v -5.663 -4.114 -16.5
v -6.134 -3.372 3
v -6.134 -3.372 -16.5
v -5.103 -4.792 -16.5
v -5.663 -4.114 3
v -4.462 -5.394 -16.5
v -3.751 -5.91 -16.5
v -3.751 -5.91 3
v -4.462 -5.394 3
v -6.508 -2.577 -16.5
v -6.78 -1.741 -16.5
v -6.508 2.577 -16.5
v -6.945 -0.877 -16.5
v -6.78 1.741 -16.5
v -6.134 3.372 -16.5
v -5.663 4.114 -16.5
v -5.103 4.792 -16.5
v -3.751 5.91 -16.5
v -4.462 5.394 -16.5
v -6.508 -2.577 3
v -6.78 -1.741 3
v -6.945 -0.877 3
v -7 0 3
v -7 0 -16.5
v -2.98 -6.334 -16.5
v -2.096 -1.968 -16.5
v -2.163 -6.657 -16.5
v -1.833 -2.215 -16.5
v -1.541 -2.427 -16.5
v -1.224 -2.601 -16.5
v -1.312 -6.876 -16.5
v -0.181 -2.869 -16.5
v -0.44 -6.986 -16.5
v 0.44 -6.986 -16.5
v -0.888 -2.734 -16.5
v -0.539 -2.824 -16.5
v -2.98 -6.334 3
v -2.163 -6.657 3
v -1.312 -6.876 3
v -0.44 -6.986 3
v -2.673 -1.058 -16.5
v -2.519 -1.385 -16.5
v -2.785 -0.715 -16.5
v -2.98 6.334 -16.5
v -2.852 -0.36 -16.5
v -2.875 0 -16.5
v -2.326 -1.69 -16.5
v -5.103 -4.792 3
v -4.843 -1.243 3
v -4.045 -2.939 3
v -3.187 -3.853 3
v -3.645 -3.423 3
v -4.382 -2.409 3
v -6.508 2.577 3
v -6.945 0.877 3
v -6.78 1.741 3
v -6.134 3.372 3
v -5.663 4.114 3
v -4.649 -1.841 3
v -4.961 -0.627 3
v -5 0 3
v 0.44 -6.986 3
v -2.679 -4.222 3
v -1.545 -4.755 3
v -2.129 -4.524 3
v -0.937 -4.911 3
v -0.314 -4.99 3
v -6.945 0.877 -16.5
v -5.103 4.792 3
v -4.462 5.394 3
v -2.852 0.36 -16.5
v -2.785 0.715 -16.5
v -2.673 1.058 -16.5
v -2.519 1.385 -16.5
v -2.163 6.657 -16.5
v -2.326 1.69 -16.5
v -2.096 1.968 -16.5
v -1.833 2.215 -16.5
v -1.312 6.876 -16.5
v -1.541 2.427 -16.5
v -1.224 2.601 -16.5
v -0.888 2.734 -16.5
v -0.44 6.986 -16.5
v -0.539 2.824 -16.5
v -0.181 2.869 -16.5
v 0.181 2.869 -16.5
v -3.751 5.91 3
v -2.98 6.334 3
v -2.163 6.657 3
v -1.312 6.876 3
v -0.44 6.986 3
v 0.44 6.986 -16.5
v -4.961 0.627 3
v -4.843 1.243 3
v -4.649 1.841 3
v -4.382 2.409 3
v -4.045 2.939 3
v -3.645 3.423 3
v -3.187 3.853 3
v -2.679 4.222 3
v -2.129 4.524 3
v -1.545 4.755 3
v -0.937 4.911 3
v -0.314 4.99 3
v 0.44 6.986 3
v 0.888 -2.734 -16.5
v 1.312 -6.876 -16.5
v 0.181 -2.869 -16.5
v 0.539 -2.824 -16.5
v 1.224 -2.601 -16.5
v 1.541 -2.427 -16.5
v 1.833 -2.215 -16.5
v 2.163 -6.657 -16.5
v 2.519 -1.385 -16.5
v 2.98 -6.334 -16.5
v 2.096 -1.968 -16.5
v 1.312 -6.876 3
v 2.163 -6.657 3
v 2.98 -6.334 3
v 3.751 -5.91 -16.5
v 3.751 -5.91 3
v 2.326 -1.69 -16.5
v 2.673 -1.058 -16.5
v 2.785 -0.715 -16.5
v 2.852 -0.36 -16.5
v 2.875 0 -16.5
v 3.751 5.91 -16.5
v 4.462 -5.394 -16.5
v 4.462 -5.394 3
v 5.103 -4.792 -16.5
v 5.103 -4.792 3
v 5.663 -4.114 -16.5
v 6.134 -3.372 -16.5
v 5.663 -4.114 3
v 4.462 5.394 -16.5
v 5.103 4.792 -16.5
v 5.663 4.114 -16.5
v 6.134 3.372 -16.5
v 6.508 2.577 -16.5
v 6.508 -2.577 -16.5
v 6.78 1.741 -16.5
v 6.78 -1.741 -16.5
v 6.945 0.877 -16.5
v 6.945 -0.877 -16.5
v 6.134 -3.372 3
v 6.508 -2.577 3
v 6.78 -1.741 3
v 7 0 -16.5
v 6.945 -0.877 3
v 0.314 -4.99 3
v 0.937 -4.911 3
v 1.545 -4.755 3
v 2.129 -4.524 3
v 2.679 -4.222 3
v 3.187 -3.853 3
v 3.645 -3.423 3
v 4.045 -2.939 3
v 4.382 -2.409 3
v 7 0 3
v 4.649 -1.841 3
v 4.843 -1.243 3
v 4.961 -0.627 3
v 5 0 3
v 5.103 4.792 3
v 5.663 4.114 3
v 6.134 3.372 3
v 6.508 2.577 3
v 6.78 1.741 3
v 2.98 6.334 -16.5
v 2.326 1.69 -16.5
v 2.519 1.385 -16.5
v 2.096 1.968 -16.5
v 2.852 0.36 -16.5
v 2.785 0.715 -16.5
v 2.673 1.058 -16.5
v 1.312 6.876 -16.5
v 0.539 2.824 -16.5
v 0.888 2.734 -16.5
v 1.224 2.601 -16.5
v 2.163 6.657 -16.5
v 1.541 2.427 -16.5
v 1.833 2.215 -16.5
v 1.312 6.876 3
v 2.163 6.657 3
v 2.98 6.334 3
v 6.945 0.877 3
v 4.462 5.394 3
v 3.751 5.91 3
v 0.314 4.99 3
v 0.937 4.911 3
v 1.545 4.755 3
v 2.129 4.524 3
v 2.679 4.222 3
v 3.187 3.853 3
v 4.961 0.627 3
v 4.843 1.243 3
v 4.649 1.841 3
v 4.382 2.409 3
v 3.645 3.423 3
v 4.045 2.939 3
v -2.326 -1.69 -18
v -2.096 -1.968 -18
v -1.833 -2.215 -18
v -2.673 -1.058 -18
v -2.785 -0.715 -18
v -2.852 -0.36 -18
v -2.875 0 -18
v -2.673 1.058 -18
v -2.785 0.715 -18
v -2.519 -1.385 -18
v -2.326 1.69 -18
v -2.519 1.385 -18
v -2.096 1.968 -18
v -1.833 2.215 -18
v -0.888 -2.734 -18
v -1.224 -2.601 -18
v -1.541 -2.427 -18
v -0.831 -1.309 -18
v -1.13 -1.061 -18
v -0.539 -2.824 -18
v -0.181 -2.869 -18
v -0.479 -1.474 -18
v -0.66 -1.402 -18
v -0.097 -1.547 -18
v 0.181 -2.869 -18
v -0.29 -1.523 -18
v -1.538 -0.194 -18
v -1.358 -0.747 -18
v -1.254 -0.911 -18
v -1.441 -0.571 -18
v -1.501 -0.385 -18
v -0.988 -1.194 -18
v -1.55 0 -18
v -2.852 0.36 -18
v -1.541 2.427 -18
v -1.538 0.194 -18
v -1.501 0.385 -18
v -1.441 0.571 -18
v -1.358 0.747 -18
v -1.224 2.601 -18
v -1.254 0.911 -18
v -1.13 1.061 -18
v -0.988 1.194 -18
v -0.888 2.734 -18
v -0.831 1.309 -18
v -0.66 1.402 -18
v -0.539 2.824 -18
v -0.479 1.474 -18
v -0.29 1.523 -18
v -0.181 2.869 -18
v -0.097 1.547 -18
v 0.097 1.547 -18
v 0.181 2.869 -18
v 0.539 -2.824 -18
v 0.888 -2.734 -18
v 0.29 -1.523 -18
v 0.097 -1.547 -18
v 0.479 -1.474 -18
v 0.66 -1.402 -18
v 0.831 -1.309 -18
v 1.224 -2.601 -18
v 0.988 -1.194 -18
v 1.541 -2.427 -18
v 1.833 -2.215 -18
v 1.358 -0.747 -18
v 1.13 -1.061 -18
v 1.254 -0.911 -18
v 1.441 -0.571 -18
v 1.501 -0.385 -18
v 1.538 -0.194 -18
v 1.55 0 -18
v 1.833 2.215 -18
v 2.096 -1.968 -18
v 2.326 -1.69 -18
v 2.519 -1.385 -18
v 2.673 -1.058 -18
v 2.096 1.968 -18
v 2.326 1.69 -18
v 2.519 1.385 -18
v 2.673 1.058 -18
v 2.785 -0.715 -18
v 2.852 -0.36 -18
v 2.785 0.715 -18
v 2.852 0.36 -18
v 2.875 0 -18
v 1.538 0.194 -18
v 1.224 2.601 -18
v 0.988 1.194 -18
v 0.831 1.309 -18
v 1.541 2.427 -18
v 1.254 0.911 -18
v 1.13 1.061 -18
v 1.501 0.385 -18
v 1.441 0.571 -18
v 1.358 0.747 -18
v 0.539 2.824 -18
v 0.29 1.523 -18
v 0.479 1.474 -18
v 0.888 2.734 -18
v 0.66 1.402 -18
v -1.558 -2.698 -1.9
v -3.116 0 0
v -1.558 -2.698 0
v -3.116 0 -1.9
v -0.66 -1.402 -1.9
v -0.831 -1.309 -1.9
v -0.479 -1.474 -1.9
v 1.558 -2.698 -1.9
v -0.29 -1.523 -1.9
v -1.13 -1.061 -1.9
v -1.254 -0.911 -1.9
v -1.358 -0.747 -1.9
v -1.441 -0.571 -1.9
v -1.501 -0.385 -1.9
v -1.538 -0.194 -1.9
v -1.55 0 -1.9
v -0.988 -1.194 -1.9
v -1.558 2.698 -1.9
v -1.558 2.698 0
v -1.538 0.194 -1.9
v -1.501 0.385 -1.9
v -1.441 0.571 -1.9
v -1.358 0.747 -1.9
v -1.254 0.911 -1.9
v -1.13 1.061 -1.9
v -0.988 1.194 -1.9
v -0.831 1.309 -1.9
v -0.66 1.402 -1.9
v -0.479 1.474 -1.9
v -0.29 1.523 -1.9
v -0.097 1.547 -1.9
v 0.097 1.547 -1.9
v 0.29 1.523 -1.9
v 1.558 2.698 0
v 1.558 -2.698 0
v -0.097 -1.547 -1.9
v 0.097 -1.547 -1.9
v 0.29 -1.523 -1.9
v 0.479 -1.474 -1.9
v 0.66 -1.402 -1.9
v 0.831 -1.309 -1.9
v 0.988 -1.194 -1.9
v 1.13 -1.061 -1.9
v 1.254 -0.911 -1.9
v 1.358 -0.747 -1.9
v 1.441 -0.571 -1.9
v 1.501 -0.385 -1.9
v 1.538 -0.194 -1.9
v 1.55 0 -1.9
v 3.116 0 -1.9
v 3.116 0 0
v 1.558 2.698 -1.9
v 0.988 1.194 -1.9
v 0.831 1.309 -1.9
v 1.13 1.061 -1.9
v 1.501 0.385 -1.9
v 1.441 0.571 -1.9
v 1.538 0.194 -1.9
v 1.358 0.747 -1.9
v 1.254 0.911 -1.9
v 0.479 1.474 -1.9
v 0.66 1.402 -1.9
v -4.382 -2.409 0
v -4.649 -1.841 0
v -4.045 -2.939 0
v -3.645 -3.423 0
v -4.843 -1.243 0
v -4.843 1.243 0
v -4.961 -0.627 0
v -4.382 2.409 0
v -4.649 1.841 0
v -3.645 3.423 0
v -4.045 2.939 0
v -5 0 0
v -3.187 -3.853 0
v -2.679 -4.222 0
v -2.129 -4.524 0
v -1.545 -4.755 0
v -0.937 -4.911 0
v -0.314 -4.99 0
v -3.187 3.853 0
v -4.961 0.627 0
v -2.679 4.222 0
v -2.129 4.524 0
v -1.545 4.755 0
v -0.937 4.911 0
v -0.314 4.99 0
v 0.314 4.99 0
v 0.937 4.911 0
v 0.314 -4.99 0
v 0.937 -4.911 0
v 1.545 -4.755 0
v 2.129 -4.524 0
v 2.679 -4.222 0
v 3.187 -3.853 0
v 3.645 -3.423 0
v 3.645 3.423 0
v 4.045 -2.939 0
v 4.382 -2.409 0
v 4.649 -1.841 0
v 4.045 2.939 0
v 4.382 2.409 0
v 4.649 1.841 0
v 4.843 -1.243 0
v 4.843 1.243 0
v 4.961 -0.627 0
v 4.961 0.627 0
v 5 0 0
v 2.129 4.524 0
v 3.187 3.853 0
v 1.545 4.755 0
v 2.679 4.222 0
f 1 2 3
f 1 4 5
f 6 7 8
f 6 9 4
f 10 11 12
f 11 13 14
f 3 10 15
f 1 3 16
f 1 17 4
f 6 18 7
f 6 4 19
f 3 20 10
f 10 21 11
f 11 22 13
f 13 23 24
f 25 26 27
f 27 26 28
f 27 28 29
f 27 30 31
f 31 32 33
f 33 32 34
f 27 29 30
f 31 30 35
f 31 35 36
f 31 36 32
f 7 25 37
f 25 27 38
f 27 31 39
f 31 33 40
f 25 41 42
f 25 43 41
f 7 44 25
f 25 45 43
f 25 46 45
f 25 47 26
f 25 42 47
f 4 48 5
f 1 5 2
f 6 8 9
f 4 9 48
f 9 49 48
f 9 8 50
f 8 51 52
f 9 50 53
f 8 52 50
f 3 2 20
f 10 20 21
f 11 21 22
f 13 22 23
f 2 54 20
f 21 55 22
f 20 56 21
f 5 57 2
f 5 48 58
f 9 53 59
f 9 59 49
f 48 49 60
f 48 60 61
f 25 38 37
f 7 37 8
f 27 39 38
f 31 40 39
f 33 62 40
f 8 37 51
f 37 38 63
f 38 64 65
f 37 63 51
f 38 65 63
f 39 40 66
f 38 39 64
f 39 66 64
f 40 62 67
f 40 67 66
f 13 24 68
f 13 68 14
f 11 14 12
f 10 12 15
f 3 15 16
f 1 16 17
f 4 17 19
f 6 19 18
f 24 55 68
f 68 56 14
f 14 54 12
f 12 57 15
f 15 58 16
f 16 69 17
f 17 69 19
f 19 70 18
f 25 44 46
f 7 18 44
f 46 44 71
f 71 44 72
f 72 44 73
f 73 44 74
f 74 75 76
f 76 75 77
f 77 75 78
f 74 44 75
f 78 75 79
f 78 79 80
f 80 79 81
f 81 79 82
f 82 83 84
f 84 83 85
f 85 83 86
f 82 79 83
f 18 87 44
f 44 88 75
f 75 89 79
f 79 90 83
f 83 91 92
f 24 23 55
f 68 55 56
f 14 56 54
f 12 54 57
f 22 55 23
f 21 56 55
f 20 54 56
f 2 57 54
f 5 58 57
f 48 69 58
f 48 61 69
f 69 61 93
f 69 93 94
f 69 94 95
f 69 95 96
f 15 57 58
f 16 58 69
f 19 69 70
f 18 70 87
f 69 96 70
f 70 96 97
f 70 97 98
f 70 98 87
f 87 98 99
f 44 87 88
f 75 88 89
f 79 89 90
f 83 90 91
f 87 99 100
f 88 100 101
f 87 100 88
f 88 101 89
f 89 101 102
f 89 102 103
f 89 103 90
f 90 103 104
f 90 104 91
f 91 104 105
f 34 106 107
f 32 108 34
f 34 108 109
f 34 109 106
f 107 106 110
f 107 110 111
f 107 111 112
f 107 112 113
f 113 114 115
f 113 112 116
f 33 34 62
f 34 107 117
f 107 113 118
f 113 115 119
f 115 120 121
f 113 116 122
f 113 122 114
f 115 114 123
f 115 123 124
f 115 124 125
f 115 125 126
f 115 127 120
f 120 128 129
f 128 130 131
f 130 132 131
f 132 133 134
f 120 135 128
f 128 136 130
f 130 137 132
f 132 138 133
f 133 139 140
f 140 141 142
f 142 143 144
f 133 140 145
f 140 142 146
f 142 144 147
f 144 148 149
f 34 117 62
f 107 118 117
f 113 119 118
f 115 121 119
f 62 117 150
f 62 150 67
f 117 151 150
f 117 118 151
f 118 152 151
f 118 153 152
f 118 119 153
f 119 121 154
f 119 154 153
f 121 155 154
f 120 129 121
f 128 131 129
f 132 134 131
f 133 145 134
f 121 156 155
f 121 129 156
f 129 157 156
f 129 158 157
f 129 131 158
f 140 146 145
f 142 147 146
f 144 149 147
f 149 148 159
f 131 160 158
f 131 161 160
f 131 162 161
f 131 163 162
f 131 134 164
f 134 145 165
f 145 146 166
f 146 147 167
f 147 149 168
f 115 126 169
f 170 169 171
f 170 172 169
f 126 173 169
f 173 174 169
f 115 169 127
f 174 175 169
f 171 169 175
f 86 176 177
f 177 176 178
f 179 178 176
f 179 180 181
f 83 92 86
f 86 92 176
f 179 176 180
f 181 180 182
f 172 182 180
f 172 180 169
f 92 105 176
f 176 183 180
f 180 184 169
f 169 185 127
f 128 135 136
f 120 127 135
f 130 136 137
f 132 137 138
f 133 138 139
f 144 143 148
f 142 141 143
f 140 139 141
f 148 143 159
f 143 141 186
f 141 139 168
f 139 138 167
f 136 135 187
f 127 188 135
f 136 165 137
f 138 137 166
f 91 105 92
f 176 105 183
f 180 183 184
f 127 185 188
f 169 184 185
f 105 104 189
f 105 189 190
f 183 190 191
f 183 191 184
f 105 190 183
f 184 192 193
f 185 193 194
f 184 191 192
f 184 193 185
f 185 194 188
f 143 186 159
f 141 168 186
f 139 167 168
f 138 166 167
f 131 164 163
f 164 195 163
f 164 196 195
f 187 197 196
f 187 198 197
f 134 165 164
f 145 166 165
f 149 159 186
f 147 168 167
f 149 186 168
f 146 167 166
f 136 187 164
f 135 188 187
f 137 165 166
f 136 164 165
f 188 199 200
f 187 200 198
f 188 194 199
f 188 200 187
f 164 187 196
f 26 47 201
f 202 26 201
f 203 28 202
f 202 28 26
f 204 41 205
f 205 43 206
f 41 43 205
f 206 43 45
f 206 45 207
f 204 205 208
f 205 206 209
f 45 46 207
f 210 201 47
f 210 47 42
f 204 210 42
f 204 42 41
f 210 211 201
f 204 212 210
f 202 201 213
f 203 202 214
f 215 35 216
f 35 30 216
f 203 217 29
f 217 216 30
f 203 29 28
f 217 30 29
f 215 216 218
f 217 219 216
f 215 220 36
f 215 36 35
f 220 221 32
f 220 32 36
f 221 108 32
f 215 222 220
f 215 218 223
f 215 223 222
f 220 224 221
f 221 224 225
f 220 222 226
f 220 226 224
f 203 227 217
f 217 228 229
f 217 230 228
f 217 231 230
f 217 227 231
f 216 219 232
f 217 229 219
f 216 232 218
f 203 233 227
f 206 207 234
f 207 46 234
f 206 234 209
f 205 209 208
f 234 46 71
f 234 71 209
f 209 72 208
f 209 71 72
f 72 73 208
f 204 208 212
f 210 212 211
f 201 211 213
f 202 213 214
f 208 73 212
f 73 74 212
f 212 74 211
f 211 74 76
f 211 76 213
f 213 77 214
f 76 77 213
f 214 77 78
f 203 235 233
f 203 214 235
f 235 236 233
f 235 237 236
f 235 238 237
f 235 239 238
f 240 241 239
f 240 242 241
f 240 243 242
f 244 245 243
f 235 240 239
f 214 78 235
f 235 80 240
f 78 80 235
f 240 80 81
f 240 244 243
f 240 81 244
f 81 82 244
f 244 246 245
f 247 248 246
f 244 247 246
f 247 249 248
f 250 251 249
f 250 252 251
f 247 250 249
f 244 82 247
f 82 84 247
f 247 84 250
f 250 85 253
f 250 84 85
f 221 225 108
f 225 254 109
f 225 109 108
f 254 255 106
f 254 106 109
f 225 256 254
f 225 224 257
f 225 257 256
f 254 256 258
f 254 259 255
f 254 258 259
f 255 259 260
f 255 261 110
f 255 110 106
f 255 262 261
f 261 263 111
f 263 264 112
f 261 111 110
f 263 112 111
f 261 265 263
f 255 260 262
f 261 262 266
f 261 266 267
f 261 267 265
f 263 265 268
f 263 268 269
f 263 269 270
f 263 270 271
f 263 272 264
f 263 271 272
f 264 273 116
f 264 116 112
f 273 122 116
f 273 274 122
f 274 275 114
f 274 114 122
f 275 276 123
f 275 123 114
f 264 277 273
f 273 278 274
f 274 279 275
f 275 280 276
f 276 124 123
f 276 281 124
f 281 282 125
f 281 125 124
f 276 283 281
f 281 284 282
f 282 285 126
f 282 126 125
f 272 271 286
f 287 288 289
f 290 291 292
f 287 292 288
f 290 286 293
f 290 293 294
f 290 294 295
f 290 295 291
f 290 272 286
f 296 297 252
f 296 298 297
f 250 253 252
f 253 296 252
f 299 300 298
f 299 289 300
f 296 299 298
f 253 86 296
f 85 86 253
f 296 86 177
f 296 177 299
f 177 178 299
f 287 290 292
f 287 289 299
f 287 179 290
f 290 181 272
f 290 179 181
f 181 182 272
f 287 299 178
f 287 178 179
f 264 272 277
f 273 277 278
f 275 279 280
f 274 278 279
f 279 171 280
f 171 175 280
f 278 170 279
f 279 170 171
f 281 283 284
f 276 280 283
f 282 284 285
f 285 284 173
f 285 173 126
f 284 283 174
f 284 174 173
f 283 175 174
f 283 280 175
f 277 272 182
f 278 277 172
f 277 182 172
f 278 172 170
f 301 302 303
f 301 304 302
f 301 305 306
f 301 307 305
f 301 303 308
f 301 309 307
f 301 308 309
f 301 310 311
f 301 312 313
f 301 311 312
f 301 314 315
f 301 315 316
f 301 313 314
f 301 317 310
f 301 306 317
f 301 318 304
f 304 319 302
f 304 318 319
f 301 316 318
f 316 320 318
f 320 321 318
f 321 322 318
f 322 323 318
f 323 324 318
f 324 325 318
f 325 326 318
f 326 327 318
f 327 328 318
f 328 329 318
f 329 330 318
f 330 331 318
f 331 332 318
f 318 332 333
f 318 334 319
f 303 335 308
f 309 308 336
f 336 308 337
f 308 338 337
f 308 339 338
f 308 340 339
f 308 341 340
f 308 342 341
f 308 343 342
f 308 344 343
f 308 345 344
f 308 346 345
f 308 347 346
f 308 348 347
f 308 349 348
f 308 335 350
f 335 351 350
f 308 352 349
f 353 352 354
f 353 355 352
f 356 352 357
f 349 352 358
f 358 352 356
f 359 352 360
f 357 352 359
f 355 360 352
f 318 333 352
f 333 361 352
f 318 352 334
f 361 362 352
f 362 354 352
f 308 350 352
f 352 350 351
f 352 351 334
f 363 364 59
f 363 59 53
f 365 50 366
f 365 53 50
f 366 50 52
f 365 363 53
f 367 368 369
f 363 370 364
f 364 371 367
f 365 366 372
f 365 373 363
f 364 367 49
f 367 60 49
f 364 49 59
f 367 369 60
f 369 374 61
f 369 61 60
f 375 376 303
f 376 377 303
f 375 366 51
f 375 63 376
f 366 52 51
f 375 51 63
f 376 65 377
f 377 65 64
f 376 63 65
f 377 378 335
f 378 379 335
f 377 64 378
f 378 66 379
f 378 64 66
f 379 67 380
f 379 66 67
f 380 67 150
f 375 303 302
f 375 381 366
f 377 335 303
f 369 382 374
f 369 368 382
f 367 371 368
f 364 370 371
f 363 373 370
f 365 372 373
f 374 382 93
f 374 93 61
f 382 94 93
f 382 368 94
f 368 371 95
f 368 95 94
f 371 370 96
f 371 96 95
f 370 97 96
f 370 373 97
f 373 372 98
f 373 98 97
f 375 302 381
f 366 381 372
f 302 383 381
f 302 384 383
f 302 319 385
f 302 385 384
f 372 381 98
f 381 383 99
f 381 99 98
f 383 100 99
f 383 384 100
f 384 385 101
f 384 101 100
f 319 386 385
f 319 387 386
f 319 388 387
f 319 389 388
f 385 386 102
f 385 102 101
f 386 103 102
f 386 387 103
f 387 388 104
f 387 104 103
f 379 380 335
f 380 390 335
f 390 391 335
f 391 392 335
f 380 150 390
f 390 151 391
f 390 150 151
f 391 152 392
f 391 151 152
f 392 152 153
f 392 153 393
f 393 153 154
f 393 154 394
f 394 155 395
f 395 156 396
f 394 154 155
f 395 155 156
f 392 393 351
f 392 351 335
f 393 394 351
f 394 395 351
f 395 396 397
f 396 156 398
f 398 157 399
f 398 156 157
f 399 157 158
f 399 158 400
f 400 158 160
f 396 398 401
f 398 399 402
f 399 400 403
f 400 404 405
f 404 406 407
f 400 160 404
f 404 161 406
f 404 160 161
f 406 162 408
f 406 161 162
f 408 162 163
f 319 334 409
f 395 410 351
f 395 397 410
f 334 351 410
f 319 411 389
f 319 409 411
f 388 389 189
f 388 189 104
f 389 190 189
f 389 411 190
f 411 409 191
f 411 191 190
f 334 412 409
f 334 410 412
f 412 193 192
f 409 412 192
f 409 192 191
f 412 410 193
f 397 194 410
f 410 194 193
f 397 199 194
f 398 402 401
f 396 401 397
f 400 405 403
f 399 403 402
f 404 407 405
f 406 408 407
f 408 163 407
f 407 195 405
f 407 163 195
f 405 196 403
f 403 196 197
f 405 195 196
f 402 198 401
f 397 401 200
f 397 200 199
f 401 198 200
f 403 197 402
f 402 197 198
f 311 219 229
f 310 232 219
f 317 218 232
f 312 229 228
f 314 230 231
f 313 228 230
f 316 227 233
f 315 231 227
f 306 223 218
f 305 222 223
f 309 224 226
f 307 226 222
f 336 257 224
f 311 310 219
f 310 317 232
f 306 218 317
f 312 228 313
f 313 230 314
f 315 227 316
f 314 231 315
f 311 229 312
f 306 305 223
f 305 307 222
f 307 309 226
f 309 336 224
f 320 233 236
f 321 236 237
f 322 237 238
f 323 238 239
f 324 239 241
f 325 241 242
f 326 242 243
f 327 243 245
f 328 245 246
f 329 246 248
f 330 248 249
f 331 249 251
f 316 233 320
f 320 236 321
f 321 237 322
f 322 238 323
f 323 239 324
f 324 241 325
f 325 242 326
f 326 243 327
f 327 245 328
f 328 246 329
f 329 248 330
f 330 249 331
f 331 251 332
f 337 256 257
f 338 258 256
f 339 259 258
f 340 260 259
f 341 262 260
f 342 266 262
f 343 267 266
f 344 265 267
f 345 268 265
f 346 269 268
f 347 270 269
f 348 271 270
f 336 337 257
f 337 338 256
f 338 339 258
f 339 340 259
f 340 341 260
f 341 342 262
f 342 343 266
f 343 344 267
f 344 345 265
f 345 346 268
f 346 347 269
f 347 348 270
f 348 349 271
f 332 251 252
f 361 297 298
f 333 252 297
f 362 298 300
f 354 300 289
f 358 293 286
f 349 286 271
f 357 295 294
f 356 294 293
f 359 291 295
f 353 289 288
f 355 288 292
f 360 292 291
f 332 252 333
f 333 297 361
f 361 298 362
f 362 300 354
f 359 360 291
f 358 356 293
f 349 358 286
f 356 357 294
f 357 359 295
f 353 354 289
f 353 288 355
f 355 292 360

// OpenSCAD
$fn = 50;

difference() {
	union() {
		translate(v = [0, 0, -16.5]) {
			cylinder(h = 19.5, r = 7.0);
		}
		#translate(v = [0, 0, -18.0]) {
			cylinder(h = 18, r = 2.875);
		}
	}
	union() {
		translate(v = [0, 0, 0]) {
			rotate(a = [0, 0, 0]) {
				difference() {
					union() {
						translate(v = [0, 0, -1.9]) {
							linear_extrude(height = 1.9) {
								polygon(points = [[3.1158, 0.0], [1.5579000000000005, 2.698361953111554], [-1.5578999999999994, 2.6983619531115544], [-3.1158, 3.815754496783323e-16], [-1.5579000000000014, -2.6983619531115535], [1.557899999999998, -2.6983619531115552]]);
							}
						}
					}
					union();
				}
			}
		}
		#cylinder(h = 3, r = 5.0);
		#translate(v = [0, 0, -100.0]) {
			cylinder(h = 200, r = 1.55);
		}
	}
}
